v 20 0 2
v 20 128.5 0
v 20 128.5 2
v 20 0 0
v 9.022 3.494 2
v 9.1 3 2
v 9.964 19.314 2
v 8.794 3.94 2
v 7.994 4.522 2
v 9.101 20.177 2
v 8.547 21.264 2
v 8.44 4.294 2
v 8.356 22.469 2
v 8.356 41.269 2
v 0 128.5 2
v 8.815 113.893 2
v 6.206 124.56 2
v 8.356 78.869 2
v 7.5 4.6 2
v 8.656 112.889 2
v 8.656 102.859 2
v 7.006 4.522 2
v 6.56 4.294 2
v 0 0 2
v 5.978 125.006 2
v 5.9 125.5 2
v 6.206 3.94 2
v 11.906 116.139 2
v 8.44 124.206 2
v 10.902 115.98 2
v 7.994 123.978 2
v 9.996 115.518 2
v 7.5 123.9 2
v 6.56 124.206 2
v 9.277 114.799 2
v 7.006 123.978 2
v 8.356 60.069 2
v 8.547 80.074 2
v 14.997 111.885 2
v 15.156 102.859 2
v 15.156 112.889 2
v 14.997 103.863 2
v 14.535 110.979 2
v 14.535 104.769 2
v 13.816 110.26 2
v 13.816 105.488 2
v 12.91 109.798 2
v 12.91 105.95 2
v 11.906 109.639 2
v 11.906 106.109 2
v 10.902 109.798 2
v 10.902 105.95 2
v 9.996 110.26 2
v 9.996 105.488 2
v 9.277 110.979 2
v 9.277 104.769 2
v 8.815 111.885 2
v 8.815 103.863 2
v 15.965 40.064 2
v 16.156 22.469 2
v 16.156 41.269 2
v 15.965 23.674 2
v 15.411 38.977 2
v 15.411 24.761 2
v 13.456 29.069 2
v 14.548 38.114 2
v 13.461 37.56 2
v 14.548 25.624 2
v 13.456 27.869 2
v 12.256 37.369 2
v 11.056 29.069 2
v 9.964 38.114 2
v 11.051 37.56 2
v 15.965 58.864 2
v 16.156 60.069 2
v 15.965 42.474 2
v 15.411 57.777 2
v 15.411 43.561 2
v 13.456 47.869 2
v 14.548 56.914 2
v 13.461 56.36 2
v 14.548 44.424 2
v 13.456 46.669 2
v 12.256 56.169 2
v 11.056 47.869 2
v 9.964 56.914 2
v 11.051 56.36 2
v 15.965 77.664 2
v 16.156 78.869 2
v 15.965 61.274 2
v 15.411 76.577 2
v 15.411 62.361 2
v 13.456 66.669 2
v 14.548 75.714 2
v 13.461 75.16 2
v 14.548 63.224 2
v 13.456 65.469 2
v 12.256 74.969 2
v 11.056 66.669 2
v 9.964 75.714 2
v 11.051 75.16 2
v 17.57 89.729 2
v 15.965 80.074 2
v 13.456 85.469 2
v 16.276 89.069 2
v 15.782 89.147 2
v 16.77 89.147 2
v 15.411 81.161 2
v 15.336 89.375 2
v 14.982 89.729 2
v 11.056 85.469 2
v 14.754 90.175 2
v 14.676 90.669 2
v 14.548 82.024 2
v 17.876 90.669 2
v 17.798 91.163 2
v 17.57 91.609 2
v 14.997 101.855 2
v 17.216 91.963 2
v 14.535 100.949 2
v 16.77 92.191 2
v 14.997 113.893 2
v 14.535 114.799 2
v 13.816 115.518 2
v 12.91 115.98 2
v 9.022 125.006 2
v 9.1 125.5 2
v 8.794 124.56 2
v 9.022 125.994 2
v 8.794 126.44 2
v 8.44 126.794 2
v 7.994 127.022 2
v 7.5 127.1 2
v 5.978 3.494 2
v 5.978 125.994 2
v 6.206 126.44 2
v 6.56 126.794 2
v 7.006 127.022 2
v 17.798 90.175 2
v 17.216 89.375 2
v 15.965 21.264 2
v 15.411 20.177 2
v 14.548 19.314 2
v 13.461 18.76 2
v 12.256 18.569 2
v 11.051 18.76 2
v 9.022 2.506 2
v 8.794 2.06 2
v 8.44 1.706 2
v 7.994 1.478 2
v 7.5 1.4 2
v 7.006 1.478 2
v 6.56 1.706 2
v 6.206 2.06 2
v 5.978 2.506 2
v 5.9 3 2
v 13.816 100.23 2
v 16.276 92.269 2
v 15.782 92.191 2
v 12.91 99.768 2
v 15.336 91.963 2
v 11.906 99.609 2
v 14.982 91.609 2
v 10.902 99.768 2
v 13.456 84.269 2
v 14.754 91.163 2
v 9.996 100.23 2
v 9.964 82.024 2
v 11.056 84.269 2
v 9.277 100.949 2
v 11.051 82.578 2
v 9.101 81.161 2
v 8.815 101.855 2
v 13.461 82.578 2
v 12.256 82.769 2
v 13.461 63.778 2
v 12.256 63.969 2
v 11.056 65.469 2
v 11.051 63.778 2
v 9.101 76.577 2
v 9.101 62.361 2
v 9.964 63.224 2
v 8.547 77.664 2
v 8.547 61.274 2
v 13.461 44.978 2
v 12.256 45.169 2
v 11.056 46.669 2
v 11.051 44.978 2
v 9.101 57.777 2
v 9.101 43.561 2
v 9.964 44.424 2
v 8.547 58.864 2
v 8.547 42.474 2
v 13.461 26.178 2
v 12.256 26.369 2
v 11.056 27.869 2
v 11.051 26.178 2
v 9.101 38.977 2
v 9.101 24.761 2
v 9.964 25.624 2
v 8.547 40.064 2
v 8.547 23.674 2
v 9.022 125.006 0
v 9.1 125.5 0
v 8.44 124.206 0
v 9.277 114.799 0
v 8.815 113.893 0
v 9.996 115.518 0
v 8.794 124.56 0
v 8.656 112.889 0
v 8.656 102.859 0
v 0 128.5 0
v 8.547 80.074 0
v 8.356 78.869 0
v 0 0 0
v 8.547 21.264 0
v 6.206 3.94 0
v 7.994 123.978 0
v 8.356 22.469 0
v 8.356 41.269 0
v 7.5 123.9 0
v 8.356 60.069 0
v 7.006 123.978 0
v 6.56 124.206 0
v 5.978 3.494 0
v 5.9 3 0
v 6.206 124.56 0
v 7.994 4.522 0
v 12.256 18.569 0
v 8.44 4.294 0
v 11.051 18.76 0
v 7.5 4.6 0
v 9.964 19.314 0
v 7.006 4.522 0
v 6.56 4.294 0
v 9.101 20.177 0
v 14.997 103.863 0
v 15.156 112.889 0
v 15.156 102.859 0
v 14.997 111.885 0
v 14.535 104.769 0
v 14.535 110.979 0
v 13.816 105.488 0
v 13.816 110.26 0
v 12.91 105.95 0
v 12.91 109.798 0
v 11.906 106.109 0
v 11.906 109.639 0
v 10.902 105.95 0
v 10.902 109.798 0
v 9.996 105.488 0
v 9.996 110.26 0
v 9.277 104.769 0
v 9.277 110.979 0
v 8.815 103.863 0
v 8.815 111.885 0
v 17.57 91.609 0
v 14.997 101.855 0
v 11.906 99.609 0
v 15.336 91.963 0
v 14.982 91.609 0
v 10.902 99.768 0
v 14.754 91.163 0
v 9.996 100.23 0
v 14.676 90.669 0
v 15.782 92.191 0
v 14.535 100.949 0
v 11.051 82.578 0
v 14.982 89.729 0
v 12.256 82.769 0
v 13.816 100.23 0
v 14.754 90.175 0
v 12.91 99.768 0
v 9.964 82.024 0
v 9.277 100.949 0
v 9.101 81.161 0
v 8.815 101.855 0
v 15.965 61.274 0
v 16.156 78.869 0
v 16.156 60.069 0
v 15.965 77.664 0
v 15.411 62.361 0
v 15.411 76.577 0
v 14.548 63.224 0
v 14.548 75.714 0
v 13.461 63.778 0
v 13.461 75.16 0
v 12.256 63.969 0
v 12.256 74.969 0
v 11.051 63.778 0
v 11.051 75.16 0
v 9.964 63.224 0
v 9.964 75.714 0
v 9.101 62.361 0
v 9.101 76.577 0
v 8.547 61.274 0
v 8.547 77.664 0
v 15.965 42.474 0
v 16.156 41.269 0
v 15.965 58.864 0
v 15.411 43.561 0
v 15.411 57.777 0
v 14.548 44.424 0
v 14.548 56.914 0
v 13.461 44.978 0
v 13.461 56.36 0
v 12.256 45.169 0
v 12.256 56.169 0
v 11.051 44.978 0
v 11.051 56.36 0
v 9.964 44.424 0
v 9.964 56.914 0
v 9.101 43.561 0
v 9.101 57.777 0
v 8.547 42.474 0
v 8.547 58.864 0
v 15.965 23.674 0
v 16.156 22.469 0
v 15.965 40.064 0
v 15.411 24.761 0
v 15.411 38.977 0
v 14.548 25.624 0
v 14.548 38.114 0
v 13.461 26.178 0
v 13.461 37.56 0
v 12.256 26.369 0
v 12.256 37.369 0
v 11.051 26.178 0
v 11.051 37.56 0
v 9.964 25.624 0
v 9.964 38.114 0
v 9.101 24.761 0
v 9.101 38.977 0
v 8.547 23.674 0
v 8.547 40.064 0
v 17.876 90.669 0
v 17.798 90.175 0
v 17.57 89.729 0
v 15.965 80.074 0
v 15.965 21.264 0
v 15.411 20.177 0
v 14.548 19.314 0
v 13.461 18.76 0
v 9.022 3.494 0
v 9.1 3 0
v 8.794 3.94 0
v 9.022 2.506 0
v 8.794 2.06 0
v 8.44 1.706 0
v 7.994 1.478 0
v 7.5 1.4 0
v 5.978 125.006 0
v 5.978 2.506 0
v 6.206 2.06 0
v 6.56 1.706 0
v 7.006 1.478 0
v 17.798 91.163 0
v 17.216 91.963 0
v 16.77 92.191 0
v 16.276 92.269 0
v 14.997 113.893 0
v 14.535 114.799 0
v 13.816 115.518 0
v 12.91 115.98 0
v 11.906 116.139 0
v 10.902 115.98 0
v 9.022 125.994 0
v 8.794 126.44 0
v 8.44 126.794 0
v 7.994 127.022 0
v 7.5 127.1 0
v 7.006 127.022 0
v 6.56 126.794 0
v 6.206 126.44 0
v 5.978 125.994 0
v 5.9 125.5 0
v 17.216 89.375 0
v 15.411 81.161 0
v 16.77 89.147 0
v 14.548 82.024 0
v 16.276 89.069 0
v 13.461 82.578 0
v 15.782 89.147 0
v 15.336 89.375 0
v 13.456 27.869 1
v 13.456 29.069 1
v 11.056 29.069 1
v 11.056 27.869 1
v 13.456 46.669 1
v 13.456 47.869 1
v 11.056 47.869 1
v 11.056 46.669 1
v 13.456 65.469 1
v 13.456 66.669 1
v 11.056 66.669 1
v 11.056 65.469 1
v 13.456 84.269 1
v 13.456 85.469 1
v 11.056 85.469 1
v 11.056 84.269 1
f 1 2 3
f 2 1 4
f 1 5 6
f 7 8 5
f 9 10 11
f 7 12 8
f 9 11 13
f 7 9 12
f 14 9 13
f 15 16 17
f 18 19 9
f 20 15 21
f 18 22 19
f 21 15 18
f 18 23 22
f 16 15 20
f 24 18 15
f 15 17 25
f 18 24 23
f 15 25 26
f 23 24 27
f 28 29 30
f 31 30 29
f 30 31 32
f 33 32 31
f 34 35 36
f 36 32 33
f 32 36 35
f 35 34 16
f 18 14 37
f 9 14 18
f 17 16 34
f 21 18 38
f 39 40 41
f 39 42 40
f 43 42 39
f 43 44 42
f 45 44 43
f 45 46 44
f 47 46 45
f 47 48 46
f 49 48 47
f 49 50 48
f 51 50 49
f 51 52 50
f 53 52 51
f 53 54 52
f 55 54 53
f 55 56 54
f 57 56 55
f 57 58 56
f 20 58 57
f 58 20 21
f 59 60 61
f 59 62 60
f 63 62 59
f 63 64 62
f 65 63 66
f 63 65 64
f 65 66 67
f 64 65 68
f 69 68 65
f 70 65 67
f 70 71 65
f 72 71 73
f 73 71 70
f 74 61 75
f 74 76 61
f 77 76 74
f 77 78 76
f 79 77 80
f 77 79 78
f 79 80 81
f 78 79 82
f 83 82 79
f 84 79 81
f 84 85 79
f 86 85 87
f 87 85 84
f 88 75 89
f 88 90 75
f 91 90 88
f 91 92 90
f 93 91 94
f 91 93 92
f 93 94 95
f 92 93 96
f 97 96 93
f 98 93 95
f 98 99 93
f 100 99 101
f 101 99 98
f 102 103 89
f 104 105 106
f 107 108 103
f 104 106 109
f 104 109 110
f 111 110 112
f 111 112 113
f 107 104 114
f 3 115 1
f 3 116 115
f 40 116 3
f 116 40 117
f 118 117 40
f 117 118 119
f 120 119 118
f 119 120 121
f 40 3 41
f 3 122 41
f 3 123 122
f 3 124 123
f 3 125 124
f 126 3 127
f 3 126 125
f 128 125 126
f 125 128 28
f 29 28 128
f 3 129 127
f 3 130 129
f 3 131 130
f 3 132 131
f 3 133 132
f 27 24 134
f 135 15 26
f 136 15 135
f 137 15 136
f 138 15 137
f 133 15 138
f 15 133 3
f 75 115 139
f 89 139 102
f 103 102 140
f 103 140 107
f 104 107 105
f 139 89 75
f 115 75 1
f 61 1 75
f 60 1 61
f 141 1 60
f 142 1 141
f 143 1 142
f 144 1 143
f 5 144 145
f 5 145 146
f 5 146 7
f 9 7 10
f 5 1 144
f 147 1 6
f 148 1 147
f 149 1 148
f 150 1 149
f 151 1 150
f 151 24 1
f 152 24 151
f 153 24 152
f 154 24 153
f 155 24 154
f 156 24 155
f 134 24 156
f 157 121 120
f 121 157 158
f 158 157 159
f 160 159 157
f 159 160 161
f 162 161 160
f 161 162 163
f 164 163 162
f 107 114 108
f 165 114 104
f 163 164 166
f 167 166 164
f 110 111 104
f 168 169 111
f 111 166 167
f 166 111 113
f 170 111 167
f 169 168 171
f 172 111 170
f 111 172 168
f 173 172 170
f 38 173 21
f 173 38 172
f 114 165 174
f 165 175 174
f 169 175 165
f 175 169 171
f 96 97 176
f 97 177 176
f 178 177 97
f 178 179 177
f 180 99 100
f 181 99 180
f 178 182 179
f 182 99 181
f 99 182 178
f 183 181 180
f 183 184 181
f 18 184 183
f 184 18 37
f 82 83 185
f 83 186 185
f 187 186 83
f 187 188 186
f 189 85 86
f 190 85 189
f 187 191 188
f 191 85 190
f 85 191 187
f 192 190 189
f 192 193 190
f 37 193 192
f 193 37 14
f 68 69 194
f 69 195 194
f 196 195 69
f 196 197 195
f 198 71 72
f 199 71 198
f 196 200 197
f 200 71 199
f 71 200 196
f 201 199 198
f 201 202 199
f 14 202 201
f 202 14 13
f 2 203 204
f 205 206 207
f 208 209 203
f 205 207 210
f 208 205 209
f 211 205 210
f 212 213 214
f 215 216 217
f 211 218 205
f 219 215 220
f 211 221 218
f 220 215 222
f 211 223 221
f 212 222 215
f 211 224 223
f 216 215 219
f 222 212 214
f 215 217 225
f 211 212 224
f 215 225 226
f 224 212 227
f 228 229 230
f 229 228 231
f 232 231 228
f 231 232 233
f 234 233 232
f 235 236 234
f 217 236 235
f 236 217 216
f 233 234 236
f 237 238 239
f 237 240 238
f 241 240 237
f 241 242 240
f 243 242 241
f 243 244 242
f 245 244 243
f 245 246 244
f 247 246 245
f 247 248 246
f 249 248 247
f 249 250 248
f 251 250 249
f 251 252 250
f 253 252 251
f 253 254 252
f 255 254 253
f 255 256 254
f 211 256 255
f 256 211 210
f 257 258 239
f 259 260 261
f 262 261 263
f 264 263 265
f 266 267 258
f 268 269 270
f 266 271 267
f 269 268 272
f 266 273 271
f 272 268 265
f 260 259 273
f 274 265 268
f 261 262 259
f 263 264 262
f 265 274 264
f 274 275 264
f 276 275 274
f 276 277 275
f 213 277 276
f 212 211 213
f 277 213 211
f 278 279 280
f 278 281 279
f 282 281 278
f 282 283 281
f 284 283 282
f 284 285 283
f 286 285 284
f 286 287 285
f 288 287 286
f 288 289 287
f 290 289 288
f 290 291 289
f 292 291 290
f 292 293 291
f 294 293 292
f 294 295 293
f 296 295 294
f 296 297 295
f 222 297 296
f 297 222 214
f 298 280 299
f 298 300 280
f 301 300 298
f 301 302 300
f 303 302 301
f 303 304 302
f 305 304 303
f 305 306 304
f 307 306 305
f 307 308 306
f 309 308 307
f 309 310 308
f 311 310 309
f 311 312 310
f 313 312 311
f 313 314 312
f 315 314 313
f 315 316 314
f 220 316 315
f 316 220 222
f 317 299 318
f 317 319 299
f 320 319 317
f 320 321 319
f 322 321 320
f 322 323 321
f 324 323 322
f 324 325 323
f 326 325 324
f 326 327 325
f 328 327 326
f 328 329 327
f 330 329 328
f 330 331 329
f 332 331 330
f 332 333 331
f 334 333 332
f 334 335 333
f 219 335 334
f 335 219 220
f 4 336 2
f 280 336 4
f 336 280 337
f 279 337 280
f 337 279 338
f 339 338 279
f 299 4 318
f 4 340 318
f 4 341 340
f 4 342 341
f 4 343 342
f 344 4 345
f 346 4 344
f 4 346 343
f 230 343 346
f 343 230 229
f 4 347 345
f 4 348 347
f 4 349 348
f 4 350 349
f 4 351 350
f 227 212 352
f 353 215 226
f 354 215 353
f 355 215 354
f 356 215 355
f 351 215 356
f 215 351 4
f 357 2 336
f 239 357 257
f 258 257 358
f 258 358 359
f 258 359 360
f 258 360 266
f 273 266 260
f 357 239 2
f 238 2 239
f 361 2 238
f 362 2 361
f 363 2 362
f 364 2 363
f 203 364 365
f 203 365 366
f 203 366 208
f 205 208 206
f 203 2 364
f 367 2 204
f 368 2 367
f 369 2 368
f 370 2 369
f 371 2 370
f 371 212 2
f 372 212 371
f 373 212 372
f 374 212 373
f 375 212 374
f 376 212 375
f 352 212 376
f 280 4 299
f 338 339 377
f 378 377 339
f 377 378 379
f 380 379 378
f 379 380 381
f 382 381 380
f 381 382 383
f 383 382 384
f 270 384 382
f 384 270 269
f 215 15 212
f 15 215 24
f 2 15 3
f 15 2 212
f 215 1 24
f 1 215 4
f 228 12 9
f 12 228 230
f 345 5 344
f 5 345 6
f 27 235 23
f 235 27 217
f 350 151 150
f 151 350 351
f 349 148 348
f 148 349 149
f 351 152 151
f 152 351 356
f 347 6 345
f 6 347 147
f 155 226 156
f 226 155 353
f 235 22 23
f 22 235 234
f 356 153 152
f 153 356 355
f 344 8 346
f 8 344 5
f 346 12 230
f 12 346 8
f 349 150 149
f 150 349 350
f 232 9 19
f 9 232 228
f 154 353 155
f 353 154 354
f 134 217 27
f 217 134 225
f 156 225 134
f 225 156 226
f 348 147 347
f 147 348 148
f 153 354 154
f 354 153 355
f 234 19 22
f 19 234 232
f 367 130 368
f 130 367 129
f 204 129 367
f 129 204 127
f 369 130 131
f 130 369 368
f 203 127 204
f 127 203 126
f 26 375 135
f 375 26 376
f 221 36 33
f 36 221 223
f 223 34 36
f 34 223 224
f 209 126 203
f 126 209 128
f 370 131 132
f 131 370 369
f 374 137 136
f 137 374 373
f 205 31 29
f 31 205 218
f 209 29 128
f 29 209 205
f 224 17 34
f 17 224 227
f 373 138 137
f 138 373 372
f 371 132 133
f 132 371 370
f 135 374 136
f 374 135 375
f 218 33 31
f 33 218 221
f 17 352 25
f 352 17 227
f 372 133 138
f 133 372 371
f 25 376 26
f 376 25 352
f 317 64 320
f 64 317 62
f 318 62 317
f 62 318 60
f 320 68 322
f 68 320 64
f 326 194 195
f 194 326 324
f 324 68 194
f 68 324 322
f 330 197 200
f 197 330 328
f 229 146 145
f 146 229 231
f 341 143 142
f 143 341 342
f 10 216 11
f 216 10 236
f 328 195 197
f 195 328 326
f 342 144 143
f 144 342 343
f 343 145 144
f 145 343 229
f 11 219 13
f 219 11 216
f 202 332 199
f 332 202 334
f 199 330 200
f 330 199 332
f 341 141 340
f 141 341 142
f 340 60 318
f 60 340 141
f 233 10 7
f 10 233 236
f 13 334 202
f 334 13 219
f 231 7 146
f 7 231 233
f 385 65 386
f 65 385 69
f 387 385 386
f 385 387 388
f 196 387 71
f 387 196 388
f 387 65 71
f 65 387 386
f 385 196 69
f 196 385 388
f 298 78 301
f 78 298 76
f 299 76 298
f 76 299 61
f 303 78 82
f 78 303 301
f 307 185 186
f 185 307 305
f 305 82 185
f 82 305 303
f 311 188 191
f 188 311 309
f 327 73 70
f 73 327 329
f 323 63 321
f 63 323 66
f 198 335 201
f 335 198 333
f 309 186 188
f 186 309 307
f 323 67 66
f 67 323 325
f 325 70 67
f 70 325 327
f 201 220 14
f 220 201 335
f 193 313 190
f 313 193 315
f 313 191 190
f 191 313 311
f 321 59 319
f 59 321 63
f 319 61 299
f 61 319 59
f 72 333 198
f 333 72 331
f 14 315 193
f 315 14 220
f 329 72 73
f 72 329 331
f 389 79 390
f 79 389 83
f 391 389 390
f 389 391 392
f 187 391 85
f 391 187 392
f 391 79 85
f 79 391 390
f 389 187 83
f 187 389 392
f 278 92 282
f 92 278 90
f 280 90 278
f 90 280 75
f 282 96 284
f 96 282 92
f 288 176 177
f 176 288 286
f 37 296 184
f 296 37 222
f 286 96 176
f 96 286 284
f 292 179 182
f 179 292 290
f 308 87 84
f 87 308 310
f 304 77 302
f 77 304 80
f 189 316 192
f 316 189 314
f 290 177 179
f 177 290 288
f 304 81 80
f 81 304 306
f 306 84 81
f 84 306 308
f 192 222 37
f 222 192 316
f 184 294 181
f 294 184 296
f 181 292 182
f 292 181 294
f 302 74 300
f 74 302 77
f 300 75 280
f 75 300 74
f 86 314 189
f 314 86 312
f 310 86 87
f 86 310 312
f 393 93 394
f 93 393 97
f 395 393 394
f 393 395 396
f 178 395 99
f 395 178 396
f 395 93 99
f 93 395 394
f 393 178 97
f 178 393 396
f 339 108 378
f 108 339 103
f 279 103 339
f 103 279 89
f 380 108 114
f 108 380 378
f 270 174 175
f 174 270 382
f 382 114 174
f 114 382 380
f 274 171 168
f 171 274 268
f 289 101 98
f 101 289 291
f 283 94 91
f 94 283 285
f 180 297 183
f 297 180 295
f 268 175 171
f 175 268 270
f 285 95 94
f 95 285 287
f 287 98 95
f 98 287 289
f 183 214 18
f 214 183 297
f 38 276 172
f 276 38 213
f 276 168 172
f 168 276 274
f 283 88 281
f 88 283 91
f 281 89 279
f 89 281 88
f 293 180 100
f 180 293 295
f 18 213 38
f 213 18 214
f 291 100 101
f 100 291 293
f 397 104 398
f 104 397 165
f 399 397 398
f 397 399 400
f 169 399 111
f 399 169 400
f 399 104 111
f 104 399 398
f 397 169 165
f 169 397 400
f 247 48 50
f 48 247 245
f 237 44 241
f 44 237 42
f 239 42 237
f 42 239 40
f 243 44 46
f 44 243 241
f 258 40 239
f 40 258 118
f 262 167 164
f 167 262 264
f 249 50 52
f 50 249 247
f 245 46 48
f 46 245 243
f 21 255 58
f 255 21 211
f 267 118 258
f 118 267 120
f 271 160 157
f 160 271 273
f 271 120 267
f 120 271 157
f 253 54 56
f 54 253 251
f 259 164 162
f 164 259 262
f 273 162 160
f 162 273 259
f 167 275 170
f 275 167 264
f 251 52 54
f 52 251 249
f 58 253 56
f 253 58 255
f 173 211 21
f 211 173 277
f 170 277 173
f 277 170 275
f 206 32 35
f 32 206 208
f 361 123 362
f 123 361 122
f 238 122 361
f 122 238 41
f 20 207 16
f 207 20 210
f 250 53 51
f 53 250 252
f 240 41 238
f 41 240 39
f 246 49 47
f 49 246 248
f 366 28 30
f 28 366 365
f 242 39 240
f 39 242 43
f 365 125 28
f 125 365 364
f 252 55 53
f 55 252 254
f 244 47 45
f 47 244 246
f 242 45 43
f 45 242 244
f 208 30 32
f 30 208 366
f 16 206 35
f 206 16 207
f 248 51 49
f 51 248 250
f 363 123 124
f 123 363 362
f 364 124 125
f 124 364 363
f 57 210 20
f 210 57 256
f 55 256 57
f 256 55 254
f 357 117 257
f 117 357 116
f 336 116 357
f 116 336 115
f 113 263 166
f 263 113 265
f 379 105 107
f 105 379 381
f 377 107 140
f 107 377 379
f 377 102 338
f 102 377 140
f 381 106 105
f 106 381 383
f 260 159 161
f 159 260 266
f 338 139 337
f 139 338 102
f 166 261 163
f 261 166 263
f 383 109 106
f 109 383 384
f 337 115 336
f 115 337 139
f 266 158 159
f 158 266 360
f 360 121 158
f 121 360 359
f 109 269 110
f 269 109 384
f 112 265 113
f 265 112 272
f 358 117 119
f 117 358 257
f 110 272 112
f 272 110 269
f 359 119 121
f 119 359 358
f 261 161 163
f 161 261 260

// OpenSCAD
// file: ../../../share/openscad/eurorack-panel.scad
// this is based on A100 spec from doepfer https://doepfer.de/a100_man/a100m_e.htm

eurorack_panel_height = function() 128.5;
eurorack_panel_width = function(width_in_hp) width_in_hp * 5;

module eurorack_panel(width_in_hp, thickness=2) {
    difference() {
        cube([eurorack_panel_width(width_in_hp), eurorack_panel_height(), thickness]);

        translate([7.5, 3, 0])
            cylinder(thickness, d=3.2, $fn=20);
        translate([7.5, eurorack_panel_height() - 3, 0])
            cylinder(thickness, d=3.2, $fn=20);

        if (width_in_hp >= 8) {
            translate([eurorack_panel_width(width_in_hp) - 7.5, 3, 0])
                cylinder(thickness, d=3.2, $fn=20);
            translate([eurorack_panel_width(width_in_hp) - 7.5, eurorack_panel_height() - 3, 0])
                cylinder(thickness, d=3.2, $fn=20);
        }
    }
}
// main file
/*
 * SPDX-FileCopyrightText: 2021-2022 Rafael G. Martins <rafael@rafaelmartins.eng.br>
 * SPDX-License-Identifier: CERN-OHL-S-2.0
 */

include <../../../share/openscad/eurorack-panel.scad>

width_in_hp = 4;
thickness = 2;

pcb_width = 18.288;
pcb_height = 107.442;

pcb0_x = (eurorack_panel_width(width_in_hp) - pcb_width) / 2;
pcb0_y = (eurorack_panel_height() - pcb_height) / 2;

pot_d = 7.8;
pot_distance_x = 11.4;
pot_distance_y = 11.94;
pot_spacing = 18.8;
pot_tag_width = 2.4;
pot_tag_length = 1.2;
pot_tag_height = 1;
pot_tag_from_center_x = -pot_tag_width / 2;
pot_tag_from_center_y = 6 - pot_tag_length / 2;

led_d = 3.2;
led_distance_x = 15.42;
led_distance_y = 80.14;

jack_d = 6.5;
jack_distance_x = 11.05;
jack_distance_y = 92.33;
jack_spacing = 10.03;

difference() {
    eurorack_panel(width_in_hp, thickness);

    translate([pcb0_x, pcb0_y, 0]) {
        for (i = [0 : 3]) {
            translate([pot_distance_x, pot_distance_y + i * pot_spacing, 0]) {
                cylinder(thickness, d=pot_d, $fn=20);
                translate([pot_tag_from_center_x, pot_tag_from_center_y, thickness - pot_tag_height])
                    cube([pot_tag_width, pot_tag_length, pot_tag_height]);
            }
        }

        translate([led_distance_x, led_distance_y, 0])
            cylinder(thickness, d=led_d, $fn=20);

        for (i = [0 : 1]) {
            translate([jack_distance_x, jack_distance_y + i * jack_spacing, 0])
                cylinder(thickness, d=jack_d, $fn=20);
        }
    }
}
